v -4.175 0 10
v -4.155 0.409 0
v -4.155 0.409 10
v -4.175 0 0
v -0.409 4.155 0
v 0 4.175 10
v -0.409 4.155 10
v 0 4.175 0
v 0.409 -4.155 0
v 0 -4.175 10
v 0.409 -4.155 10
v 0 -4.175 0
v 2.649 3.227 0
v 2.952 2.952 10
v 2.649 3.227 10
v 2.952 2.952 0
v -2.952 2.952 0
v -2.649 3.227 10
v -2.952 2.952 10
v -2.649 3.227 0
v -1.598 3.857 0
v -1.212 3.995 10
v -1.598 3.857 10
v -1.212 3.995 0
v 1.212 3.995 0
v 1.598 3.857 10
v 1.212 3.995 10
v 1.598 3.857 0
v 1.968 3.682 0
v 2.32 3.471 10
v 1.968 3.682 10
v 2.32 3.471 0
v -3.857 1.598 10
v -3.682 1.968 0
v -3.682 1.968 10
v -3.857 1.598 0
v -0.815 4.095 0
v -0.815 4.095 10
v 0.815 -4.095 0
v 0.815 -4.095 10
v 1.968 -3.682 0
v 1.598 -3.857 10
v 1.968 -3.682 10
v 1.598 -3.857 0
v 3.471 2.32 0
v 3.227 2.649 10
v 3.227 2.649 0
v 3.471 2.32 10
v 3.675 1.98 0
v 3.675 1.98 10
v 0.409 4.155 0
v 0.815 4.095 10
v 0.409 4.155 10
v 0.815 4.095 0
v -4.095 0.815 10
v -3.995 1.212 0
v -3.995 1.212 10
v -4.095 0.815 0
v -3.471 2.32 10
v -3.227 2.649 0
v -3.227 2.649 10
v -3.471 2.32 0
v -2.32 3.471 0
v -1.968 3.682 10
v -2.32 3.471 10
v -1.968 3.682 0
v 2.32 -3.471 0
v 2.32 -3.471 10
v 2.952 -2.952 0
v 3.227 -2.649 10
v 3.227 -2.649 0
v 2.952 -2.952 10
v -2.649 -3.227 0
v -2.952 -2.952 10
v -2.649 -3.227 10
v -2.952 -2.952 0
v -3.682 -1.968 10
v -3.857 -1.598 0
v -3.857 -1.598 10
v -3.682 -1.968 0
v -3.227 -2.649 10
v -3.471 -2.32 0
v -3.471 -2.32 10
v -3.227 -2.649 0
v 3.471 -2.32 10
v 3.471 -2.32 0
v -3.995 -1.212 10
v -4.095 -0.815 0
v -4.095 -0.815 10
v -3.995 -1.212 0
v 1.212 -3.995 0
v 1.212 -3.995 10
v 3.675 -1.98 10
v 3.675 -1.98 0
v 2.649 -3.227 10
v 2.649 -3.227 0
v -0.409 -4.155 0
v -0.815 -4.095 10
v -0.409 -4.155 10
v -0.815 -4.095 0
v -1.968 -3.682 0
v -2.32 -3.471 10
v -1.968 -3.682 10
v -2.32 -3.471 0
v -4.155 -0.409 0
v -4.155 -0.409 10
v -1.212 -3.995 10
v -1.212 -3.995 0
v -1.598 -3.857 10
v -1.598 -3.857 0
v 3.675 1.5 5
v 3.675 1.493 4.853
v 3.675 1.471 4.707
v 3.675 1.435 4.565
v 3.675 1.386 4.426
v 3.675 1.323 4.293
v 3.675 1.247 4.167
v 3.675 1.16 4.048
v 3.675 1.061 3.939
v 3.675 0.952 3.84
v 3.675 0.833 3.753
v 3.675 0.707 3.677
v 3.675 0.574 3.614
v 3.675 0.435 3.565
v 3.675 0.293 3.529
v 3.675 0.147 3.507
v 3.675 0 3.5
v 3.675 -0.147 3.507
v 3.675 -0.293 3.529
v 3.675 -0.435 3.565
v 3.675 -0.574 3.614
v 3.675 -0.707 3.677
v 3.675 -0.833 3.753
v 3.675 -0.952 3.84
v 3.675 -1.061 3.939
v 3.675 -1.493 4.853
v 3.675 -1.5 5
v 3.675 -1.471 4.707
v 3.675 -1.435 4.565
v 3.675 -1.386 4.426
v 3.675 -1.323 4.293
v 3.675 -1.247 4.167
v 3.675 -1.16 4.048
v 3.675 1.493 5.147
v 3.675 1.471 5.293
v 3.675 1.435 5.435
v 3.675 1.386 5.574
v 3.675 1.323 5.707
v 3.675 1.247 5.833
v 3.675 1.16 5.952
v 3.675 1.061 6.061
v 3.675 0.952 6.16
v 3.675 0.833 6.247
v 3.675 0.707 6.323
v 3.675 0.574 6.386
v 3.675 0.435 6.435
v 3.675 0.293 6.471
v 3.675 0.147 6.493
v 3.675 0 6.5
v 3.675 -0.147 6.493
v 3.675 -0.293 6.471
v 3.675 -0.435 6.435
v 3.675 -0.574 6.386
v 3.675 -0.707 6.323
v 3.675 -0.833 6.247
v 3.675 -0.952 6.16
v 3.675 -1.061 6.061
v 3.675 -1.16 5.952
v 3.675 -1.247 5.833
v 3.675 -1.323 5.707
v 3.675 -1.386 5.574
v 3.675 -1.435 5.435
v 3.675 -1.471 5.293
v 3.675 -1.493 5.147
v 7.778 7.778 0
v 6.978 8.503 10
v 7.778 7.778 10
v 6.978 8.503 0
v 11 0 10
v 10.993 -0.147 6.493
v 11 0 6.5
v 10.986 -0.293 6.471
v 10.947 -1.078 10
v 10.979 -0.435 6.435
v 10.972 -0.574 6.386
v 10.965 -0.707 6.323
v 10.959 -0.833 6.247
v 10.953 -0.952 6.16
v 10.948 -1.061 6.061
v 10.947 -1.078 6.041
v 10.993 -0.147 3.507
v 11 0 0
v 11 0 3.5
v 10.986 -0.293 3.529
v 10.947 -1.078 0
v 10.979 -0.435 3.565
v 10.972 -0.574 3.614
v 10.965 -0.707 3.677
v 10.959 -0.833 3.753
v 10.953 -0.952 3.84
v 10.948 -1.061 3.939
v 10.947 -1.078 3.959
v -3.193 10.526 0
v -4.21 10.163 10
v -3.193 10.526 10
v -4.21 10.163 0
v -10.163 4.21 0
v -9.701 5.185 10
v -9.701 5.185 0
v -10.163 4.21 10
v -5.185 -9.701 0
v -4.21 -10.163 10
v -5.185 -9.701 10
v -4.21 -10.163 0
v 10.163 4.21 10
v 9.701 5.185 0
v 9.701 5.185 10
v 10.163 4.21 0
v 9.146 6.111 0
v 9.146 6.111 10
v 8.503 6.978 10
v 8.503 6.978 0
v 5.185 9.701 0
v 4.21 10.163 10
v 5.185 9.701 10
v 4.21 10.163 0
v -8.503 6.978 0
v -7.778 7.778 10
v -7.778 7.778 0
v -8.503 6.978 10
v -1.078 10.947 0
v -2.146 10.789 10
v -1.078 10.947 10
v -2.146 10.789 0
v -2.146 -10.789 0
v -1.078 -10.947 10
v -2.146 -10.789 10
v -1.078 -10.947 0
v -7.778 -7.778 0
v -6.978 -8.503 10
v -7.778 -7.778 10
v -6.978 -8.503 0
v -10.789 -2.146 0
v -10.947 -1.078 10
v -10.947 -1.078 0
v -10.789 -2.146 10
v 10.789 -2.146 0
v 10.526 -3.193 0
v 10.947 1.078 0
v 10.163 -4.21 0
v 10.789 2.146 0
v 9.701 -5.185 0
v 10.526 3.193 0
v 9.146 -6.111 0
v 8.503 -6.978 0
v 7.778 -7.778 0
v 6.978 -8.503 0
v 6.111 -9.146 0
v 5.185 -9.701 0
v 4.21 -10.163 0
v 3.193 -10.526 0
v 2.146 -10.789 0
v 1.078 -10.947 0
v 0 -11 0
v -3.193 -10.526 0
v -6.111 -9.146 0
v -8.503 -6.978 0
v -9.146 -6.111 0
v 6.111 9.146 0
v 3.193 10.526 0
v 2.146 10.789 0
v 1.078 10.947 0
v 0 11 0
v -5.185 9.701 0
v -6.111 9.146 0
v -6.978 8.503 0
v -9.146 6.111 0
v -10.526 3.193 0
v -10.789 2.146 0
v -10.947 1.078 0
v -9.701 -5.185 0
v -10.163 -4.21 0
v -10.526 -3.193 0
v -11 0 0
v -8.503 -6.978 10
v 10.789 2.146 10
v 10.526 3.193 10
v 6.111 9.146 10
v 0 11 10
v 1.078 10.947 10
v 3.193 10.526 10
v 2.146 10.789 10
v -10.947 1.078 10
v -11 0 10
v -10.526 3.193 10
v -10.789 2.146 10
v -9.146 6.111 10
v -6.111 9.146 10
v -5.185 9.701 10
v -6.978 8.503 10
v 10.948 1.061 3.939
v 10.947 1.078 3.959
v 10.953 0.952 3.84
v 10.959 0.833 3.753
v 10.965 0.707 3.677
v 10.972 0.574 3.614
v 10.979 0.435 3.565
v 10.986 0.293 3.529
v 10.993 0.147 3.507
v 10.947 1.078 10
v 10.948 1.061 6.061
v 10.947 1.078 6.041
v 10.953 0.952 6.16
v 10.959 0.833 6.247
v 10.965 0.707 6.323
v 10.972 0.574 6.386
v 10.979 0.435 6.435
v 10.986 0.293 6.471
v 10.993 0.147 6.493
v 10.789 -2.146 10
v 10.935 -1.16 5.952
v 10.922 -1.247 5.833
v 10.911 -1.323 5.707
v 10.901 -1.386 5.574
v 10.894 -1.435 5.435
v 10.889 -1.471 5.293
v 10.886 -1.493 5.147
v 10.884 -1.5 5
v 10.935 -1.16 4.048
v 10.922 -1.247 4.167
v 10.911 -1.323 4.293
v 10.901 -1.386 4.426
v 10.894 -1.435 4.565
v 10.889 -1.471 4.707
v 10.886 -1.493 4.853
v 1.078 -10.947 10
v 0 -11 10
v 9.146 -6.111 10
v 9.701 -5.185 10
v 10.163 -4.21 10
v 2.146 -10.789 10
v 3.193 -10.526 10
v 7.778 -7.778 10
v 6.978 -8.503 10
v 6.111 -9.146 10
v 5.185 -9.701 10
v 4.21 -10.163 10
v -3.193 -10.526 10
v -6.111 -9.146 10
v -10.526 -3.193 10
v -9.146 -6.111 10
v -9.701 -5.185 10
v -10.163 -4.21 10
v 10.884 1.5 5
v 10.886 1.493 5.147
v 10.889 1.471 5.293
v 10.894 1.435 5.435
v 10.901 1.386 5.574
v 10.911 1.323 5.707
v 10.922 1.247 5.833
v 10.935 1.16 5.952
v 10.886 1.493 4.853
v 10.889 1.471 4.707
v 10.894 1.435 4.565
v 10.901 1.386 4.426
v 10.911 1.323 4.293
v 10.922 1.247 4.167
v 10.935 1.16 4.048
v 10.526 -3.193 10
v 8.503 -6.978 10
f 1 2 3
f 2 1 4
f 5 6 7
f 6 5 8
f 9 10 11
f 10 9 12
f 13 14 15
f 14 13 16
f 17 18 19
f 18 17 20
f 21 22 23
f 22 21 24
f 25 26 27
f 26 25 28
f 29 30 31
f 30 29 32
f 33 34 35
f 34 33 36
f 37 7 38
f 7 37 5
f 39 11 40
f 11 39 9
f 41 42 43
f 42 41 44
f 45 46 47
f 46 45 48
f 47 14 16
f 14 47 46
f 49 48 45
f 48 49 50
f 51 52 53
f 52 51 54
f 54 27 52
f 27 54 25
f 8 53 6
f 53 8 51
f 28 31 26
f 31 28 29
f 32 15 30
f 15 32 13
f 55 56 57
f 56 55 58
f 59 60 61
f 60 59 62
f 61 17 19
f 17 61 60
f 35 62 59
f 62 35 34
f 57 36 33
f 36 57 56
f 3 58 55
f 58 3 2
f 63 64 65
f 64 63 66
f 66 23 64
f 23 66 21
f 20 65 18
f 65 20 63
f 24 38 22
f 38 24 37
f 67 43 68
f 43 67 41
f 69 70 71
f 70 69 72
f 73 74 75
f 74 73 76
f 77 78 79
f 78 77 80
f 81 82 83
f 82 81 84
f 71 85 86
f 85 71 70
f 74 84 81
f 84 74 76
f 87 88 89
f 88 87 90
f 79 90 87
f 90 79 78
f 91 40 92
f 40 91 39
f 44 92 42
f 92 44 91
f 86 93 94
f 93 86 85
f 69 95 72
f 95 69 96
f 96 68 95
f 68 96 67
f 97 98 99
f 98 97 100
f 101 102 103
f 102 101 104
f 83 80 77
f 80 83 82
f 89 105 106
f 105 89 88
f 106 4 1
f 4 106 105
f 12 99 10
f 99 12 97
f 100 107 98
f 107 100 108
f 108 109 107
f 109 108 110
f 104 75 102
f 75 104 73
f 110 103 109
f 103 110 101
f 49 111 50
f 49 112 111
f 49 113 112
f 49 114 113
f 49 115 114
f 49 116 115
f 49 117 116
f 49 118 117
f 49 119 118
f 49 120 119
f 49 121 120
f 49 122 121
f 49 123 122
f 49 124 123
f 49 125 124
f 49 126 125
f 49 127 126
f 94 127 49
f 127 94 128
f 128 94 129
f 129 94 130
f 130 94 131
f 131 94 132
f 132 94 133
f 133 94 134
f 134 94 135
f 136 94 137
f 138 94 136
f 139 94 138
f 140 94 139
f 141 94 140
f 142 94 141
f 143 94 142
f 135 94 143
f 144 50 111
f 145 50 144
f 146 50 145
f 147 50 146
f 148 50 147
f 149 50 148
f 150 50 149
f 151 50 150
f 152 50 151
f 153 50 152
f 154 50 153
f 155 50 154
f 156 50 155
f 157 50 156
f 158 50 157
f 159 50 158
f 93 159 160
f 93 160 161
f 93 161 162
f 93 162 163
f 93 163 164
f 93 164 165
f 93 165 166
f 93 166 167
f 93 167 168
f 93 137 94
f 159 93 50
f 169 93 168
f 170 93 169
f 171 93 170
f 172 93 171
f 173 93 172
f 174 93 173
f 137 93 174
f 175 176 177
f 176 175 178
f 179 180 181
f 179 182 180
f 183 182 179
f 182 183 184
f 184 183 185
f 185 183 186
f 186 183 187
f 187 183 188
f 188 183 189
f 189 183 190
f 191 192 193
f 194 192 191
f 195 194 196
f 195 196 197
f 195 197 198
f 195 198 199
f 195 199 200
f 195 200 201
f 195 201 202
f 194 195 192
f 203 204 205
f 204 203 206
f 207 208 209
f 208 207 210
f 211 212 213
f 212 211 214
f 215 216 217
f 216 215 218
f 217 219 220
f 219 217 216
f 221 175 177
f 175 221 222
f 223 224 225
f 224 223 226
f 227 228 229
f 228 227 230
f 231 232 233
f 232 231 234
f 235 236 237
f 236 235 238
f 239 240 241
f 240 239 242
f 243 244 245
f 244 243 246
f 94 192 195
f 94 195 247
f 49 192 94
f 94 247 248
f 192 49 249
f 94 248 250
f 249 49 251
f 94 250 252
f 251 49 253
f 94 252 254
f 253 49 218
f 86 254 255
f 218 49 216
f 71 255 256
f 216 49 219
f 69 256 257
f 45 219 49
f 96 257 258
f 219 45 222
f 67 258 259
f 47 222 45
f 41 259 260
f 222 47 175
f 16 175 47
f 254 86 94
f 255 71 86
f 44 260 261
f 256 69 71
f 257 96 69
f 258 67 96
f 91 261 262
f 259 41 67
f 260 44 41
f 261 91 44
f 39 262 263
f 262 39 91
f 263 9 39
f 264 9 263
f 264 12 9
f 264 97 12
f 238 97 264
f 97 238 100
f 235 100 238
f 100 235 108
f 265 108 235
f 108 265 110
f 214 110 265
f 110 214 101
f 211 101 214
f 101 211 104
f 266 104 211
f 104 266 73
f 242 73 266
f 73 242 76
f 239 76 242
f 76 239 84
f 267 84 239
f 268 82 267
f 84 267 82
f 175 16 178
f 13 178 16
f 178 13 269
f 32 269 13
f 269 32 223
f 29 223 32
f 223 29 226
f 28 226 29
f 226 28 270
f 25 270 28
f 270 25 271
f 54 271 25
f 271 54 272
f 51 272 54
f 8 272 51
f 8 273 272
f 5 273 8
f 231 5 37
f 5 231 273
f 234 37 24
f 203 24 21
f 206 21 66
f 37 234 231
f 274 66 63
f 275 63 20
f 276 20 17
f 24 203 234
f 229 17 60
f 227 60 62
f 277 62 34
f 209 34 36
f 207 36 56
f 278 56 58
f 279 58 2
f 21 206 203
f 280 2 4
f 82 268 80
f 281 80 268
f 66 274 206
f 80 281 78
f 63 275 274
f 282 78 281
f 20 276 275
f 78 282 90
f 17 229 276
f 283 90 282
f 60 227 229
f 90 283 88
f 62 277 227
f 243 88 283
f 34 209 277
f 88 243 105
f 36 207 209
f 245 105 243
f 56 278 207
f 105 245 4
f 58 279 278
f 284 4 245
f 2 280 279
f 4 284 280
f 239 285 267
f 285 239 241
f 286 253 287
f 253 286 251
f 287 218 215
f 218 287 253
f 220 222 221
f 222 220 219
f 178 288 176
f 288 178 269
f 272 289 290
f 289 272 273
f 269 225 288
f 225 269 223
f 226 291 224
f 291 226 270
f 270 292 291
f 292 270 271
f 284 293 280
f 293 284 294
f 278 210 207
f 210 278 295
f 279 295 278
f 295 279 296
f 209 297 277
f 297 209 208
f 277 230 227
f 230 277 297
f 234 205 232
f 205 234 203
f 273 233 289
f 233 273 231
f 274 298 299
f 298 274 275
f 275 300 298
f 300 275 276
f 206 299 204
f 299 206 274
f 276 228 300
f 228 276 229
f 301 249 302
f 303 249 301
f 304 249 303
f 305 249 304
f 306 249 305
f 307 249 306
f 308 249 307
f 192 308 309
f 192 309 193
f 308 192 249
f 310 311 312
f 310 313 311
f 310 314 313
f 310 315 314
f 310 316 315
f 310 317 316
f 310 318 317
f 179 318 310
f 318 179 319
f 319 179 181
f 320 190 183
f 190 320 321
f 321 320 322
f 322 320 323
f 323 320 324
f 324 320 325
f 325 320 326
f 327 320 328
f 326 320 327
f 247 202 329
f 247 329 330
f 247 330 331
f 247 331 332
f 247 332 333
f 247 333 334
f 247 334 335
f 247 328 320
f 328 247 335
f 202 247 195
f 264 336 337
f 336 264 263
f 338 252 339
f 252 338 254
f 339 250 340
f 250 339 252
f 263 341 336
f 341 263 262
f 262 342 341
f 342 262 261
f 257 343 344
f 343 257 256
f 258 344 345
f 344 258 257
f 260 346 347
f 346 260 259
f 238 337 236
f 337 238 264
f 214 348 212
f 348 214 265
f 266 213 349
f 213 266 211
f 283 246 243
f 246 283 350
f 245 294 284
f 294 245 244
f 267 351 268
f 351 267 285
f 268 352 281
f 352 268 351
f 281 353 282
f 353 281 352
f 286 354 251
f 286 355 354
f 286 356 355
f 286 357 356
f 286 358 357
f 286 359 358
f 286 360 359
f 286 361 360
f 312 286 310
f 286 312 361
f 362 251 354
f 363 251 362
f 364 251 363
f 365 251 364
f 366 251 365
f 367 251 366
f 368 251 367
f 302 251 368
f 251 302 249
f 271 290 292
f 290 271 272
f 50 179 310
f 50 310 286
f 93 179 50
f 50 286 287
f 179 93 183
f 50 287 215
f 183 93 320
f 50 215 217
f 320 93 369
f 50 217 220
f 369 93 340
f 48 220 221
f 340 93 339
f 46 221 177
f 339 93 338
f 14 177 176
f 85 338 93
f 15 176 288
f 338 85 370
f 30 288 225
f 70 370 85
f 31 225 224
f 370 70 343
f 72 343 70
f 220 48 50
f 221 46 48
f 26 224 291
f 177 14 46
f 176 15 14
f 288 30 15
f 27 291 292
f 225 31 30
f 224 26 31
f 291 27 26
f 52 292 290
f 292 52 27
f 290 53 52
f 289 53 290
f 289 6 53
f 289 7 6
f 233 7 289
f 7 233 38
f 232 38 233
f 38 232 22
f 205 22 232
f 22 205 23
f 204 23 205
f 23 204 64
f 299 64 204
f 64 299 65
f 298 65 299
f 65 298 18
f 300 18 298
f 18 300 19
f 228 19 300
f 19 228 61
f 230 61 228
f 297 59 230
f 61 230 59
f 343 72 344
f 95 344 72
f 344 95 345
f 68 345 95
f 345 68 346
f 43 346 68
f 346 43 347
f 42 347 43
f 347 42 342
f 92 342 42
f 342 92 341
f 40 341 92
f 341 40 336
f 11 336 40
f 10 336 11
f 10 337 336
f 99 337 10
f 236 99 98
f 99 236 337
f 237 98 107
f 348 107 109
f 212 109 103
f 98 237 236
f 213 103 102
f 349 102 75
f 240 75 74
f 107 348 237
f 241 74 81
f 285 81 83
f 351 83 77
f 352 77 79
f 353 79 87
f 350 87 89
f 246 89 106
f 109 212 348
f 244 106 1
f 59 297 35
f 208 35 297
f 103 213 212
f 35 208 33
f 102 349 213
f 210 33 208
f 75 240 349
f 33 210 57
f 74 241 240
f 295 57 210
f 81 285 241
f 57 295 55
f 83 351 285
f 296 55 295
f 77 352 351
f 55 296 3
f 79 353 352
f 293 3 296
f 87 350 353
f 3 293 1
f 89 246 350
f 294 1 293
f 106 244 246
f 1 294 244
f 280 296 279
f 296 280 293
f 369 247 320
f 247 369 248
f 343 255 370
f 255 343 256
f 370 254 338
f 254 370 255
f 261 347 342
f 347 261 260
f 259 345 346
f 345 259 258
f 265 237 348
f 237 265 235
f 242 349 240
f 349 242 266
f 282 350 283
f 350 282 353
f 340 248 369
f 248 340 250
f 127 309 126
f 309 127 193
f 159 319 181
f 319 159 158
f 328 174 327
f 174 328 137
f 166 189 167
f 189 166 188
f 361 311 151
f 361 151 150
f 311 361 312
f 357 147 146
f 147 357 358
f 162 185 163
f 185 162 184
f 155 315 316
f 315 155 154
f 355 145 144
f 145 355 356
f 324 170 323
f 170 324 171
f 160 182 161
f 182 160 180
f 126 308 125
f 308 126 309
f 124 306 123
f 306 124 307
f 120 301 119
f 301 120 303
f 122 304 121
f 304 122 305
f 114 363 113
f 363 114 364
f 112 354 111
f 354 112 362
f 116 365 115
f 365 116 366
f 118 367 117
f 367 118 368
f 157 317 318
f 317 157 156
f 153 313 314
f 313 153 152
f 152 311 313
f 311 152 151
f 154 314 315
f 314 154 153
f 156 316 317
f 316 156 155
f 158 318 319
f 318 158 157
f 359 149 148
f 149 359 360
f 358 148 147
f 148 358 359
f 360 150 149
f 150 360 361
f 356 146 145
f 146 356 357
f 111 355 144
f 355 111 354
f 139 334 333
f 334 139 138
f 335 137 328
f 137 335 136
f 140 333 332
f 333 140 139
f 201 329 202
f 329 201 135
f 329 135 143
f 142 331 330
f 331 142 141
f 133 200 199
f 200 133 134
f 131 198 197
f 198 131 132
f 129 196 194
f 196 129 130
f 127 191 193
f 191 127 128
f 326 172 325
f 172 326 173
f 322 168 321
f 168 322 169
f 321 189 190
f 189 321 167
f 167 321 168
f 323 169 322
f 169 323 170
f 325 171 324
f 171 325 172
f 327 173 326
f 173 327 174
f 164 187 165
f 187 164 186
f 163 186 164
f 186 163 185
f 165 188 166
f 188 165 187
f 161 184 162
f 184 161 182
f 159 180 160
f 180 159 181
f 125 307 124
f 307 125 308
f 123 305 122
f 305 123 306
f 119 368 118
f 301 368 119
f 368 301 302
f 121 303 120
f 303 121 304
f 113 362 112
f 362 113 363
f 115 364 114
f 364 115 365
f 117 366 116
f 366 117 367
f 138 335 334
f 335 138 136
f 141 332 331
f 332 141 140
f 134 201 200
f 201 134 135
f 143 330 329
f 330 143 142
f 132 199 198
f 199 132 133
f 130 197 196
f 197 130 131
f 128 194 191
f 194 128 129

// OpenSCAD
// Gen-DM — shaft collar with D-flat bore (set screw bears on the flat); print x4
include <parameters.scad>;
$fn = 64;
// D-flat keyed bore: flat faces +X (angle 0 = magnet pocket 0 = index notch)
module dflat_bore(h) {
    intersection() {
        cylinder(d=shaft_bore, h=h);
        translate([-shaft_bore, -shaft_bore, 0]) cube([shaft_bore + dflat_x, 2*shaft_bore, h]);
    }
}

od = 22; h = collar_h; set_d = 3.0;
difference() {
    cylinder(d=od, h=h);
    translate([0, 0, -0.1]) dflat_bore(h + 0.2);
    translate([0, 0, h/2]) rotate([0, 90, 0]) cylinder(d=set_d, h=od);
}
